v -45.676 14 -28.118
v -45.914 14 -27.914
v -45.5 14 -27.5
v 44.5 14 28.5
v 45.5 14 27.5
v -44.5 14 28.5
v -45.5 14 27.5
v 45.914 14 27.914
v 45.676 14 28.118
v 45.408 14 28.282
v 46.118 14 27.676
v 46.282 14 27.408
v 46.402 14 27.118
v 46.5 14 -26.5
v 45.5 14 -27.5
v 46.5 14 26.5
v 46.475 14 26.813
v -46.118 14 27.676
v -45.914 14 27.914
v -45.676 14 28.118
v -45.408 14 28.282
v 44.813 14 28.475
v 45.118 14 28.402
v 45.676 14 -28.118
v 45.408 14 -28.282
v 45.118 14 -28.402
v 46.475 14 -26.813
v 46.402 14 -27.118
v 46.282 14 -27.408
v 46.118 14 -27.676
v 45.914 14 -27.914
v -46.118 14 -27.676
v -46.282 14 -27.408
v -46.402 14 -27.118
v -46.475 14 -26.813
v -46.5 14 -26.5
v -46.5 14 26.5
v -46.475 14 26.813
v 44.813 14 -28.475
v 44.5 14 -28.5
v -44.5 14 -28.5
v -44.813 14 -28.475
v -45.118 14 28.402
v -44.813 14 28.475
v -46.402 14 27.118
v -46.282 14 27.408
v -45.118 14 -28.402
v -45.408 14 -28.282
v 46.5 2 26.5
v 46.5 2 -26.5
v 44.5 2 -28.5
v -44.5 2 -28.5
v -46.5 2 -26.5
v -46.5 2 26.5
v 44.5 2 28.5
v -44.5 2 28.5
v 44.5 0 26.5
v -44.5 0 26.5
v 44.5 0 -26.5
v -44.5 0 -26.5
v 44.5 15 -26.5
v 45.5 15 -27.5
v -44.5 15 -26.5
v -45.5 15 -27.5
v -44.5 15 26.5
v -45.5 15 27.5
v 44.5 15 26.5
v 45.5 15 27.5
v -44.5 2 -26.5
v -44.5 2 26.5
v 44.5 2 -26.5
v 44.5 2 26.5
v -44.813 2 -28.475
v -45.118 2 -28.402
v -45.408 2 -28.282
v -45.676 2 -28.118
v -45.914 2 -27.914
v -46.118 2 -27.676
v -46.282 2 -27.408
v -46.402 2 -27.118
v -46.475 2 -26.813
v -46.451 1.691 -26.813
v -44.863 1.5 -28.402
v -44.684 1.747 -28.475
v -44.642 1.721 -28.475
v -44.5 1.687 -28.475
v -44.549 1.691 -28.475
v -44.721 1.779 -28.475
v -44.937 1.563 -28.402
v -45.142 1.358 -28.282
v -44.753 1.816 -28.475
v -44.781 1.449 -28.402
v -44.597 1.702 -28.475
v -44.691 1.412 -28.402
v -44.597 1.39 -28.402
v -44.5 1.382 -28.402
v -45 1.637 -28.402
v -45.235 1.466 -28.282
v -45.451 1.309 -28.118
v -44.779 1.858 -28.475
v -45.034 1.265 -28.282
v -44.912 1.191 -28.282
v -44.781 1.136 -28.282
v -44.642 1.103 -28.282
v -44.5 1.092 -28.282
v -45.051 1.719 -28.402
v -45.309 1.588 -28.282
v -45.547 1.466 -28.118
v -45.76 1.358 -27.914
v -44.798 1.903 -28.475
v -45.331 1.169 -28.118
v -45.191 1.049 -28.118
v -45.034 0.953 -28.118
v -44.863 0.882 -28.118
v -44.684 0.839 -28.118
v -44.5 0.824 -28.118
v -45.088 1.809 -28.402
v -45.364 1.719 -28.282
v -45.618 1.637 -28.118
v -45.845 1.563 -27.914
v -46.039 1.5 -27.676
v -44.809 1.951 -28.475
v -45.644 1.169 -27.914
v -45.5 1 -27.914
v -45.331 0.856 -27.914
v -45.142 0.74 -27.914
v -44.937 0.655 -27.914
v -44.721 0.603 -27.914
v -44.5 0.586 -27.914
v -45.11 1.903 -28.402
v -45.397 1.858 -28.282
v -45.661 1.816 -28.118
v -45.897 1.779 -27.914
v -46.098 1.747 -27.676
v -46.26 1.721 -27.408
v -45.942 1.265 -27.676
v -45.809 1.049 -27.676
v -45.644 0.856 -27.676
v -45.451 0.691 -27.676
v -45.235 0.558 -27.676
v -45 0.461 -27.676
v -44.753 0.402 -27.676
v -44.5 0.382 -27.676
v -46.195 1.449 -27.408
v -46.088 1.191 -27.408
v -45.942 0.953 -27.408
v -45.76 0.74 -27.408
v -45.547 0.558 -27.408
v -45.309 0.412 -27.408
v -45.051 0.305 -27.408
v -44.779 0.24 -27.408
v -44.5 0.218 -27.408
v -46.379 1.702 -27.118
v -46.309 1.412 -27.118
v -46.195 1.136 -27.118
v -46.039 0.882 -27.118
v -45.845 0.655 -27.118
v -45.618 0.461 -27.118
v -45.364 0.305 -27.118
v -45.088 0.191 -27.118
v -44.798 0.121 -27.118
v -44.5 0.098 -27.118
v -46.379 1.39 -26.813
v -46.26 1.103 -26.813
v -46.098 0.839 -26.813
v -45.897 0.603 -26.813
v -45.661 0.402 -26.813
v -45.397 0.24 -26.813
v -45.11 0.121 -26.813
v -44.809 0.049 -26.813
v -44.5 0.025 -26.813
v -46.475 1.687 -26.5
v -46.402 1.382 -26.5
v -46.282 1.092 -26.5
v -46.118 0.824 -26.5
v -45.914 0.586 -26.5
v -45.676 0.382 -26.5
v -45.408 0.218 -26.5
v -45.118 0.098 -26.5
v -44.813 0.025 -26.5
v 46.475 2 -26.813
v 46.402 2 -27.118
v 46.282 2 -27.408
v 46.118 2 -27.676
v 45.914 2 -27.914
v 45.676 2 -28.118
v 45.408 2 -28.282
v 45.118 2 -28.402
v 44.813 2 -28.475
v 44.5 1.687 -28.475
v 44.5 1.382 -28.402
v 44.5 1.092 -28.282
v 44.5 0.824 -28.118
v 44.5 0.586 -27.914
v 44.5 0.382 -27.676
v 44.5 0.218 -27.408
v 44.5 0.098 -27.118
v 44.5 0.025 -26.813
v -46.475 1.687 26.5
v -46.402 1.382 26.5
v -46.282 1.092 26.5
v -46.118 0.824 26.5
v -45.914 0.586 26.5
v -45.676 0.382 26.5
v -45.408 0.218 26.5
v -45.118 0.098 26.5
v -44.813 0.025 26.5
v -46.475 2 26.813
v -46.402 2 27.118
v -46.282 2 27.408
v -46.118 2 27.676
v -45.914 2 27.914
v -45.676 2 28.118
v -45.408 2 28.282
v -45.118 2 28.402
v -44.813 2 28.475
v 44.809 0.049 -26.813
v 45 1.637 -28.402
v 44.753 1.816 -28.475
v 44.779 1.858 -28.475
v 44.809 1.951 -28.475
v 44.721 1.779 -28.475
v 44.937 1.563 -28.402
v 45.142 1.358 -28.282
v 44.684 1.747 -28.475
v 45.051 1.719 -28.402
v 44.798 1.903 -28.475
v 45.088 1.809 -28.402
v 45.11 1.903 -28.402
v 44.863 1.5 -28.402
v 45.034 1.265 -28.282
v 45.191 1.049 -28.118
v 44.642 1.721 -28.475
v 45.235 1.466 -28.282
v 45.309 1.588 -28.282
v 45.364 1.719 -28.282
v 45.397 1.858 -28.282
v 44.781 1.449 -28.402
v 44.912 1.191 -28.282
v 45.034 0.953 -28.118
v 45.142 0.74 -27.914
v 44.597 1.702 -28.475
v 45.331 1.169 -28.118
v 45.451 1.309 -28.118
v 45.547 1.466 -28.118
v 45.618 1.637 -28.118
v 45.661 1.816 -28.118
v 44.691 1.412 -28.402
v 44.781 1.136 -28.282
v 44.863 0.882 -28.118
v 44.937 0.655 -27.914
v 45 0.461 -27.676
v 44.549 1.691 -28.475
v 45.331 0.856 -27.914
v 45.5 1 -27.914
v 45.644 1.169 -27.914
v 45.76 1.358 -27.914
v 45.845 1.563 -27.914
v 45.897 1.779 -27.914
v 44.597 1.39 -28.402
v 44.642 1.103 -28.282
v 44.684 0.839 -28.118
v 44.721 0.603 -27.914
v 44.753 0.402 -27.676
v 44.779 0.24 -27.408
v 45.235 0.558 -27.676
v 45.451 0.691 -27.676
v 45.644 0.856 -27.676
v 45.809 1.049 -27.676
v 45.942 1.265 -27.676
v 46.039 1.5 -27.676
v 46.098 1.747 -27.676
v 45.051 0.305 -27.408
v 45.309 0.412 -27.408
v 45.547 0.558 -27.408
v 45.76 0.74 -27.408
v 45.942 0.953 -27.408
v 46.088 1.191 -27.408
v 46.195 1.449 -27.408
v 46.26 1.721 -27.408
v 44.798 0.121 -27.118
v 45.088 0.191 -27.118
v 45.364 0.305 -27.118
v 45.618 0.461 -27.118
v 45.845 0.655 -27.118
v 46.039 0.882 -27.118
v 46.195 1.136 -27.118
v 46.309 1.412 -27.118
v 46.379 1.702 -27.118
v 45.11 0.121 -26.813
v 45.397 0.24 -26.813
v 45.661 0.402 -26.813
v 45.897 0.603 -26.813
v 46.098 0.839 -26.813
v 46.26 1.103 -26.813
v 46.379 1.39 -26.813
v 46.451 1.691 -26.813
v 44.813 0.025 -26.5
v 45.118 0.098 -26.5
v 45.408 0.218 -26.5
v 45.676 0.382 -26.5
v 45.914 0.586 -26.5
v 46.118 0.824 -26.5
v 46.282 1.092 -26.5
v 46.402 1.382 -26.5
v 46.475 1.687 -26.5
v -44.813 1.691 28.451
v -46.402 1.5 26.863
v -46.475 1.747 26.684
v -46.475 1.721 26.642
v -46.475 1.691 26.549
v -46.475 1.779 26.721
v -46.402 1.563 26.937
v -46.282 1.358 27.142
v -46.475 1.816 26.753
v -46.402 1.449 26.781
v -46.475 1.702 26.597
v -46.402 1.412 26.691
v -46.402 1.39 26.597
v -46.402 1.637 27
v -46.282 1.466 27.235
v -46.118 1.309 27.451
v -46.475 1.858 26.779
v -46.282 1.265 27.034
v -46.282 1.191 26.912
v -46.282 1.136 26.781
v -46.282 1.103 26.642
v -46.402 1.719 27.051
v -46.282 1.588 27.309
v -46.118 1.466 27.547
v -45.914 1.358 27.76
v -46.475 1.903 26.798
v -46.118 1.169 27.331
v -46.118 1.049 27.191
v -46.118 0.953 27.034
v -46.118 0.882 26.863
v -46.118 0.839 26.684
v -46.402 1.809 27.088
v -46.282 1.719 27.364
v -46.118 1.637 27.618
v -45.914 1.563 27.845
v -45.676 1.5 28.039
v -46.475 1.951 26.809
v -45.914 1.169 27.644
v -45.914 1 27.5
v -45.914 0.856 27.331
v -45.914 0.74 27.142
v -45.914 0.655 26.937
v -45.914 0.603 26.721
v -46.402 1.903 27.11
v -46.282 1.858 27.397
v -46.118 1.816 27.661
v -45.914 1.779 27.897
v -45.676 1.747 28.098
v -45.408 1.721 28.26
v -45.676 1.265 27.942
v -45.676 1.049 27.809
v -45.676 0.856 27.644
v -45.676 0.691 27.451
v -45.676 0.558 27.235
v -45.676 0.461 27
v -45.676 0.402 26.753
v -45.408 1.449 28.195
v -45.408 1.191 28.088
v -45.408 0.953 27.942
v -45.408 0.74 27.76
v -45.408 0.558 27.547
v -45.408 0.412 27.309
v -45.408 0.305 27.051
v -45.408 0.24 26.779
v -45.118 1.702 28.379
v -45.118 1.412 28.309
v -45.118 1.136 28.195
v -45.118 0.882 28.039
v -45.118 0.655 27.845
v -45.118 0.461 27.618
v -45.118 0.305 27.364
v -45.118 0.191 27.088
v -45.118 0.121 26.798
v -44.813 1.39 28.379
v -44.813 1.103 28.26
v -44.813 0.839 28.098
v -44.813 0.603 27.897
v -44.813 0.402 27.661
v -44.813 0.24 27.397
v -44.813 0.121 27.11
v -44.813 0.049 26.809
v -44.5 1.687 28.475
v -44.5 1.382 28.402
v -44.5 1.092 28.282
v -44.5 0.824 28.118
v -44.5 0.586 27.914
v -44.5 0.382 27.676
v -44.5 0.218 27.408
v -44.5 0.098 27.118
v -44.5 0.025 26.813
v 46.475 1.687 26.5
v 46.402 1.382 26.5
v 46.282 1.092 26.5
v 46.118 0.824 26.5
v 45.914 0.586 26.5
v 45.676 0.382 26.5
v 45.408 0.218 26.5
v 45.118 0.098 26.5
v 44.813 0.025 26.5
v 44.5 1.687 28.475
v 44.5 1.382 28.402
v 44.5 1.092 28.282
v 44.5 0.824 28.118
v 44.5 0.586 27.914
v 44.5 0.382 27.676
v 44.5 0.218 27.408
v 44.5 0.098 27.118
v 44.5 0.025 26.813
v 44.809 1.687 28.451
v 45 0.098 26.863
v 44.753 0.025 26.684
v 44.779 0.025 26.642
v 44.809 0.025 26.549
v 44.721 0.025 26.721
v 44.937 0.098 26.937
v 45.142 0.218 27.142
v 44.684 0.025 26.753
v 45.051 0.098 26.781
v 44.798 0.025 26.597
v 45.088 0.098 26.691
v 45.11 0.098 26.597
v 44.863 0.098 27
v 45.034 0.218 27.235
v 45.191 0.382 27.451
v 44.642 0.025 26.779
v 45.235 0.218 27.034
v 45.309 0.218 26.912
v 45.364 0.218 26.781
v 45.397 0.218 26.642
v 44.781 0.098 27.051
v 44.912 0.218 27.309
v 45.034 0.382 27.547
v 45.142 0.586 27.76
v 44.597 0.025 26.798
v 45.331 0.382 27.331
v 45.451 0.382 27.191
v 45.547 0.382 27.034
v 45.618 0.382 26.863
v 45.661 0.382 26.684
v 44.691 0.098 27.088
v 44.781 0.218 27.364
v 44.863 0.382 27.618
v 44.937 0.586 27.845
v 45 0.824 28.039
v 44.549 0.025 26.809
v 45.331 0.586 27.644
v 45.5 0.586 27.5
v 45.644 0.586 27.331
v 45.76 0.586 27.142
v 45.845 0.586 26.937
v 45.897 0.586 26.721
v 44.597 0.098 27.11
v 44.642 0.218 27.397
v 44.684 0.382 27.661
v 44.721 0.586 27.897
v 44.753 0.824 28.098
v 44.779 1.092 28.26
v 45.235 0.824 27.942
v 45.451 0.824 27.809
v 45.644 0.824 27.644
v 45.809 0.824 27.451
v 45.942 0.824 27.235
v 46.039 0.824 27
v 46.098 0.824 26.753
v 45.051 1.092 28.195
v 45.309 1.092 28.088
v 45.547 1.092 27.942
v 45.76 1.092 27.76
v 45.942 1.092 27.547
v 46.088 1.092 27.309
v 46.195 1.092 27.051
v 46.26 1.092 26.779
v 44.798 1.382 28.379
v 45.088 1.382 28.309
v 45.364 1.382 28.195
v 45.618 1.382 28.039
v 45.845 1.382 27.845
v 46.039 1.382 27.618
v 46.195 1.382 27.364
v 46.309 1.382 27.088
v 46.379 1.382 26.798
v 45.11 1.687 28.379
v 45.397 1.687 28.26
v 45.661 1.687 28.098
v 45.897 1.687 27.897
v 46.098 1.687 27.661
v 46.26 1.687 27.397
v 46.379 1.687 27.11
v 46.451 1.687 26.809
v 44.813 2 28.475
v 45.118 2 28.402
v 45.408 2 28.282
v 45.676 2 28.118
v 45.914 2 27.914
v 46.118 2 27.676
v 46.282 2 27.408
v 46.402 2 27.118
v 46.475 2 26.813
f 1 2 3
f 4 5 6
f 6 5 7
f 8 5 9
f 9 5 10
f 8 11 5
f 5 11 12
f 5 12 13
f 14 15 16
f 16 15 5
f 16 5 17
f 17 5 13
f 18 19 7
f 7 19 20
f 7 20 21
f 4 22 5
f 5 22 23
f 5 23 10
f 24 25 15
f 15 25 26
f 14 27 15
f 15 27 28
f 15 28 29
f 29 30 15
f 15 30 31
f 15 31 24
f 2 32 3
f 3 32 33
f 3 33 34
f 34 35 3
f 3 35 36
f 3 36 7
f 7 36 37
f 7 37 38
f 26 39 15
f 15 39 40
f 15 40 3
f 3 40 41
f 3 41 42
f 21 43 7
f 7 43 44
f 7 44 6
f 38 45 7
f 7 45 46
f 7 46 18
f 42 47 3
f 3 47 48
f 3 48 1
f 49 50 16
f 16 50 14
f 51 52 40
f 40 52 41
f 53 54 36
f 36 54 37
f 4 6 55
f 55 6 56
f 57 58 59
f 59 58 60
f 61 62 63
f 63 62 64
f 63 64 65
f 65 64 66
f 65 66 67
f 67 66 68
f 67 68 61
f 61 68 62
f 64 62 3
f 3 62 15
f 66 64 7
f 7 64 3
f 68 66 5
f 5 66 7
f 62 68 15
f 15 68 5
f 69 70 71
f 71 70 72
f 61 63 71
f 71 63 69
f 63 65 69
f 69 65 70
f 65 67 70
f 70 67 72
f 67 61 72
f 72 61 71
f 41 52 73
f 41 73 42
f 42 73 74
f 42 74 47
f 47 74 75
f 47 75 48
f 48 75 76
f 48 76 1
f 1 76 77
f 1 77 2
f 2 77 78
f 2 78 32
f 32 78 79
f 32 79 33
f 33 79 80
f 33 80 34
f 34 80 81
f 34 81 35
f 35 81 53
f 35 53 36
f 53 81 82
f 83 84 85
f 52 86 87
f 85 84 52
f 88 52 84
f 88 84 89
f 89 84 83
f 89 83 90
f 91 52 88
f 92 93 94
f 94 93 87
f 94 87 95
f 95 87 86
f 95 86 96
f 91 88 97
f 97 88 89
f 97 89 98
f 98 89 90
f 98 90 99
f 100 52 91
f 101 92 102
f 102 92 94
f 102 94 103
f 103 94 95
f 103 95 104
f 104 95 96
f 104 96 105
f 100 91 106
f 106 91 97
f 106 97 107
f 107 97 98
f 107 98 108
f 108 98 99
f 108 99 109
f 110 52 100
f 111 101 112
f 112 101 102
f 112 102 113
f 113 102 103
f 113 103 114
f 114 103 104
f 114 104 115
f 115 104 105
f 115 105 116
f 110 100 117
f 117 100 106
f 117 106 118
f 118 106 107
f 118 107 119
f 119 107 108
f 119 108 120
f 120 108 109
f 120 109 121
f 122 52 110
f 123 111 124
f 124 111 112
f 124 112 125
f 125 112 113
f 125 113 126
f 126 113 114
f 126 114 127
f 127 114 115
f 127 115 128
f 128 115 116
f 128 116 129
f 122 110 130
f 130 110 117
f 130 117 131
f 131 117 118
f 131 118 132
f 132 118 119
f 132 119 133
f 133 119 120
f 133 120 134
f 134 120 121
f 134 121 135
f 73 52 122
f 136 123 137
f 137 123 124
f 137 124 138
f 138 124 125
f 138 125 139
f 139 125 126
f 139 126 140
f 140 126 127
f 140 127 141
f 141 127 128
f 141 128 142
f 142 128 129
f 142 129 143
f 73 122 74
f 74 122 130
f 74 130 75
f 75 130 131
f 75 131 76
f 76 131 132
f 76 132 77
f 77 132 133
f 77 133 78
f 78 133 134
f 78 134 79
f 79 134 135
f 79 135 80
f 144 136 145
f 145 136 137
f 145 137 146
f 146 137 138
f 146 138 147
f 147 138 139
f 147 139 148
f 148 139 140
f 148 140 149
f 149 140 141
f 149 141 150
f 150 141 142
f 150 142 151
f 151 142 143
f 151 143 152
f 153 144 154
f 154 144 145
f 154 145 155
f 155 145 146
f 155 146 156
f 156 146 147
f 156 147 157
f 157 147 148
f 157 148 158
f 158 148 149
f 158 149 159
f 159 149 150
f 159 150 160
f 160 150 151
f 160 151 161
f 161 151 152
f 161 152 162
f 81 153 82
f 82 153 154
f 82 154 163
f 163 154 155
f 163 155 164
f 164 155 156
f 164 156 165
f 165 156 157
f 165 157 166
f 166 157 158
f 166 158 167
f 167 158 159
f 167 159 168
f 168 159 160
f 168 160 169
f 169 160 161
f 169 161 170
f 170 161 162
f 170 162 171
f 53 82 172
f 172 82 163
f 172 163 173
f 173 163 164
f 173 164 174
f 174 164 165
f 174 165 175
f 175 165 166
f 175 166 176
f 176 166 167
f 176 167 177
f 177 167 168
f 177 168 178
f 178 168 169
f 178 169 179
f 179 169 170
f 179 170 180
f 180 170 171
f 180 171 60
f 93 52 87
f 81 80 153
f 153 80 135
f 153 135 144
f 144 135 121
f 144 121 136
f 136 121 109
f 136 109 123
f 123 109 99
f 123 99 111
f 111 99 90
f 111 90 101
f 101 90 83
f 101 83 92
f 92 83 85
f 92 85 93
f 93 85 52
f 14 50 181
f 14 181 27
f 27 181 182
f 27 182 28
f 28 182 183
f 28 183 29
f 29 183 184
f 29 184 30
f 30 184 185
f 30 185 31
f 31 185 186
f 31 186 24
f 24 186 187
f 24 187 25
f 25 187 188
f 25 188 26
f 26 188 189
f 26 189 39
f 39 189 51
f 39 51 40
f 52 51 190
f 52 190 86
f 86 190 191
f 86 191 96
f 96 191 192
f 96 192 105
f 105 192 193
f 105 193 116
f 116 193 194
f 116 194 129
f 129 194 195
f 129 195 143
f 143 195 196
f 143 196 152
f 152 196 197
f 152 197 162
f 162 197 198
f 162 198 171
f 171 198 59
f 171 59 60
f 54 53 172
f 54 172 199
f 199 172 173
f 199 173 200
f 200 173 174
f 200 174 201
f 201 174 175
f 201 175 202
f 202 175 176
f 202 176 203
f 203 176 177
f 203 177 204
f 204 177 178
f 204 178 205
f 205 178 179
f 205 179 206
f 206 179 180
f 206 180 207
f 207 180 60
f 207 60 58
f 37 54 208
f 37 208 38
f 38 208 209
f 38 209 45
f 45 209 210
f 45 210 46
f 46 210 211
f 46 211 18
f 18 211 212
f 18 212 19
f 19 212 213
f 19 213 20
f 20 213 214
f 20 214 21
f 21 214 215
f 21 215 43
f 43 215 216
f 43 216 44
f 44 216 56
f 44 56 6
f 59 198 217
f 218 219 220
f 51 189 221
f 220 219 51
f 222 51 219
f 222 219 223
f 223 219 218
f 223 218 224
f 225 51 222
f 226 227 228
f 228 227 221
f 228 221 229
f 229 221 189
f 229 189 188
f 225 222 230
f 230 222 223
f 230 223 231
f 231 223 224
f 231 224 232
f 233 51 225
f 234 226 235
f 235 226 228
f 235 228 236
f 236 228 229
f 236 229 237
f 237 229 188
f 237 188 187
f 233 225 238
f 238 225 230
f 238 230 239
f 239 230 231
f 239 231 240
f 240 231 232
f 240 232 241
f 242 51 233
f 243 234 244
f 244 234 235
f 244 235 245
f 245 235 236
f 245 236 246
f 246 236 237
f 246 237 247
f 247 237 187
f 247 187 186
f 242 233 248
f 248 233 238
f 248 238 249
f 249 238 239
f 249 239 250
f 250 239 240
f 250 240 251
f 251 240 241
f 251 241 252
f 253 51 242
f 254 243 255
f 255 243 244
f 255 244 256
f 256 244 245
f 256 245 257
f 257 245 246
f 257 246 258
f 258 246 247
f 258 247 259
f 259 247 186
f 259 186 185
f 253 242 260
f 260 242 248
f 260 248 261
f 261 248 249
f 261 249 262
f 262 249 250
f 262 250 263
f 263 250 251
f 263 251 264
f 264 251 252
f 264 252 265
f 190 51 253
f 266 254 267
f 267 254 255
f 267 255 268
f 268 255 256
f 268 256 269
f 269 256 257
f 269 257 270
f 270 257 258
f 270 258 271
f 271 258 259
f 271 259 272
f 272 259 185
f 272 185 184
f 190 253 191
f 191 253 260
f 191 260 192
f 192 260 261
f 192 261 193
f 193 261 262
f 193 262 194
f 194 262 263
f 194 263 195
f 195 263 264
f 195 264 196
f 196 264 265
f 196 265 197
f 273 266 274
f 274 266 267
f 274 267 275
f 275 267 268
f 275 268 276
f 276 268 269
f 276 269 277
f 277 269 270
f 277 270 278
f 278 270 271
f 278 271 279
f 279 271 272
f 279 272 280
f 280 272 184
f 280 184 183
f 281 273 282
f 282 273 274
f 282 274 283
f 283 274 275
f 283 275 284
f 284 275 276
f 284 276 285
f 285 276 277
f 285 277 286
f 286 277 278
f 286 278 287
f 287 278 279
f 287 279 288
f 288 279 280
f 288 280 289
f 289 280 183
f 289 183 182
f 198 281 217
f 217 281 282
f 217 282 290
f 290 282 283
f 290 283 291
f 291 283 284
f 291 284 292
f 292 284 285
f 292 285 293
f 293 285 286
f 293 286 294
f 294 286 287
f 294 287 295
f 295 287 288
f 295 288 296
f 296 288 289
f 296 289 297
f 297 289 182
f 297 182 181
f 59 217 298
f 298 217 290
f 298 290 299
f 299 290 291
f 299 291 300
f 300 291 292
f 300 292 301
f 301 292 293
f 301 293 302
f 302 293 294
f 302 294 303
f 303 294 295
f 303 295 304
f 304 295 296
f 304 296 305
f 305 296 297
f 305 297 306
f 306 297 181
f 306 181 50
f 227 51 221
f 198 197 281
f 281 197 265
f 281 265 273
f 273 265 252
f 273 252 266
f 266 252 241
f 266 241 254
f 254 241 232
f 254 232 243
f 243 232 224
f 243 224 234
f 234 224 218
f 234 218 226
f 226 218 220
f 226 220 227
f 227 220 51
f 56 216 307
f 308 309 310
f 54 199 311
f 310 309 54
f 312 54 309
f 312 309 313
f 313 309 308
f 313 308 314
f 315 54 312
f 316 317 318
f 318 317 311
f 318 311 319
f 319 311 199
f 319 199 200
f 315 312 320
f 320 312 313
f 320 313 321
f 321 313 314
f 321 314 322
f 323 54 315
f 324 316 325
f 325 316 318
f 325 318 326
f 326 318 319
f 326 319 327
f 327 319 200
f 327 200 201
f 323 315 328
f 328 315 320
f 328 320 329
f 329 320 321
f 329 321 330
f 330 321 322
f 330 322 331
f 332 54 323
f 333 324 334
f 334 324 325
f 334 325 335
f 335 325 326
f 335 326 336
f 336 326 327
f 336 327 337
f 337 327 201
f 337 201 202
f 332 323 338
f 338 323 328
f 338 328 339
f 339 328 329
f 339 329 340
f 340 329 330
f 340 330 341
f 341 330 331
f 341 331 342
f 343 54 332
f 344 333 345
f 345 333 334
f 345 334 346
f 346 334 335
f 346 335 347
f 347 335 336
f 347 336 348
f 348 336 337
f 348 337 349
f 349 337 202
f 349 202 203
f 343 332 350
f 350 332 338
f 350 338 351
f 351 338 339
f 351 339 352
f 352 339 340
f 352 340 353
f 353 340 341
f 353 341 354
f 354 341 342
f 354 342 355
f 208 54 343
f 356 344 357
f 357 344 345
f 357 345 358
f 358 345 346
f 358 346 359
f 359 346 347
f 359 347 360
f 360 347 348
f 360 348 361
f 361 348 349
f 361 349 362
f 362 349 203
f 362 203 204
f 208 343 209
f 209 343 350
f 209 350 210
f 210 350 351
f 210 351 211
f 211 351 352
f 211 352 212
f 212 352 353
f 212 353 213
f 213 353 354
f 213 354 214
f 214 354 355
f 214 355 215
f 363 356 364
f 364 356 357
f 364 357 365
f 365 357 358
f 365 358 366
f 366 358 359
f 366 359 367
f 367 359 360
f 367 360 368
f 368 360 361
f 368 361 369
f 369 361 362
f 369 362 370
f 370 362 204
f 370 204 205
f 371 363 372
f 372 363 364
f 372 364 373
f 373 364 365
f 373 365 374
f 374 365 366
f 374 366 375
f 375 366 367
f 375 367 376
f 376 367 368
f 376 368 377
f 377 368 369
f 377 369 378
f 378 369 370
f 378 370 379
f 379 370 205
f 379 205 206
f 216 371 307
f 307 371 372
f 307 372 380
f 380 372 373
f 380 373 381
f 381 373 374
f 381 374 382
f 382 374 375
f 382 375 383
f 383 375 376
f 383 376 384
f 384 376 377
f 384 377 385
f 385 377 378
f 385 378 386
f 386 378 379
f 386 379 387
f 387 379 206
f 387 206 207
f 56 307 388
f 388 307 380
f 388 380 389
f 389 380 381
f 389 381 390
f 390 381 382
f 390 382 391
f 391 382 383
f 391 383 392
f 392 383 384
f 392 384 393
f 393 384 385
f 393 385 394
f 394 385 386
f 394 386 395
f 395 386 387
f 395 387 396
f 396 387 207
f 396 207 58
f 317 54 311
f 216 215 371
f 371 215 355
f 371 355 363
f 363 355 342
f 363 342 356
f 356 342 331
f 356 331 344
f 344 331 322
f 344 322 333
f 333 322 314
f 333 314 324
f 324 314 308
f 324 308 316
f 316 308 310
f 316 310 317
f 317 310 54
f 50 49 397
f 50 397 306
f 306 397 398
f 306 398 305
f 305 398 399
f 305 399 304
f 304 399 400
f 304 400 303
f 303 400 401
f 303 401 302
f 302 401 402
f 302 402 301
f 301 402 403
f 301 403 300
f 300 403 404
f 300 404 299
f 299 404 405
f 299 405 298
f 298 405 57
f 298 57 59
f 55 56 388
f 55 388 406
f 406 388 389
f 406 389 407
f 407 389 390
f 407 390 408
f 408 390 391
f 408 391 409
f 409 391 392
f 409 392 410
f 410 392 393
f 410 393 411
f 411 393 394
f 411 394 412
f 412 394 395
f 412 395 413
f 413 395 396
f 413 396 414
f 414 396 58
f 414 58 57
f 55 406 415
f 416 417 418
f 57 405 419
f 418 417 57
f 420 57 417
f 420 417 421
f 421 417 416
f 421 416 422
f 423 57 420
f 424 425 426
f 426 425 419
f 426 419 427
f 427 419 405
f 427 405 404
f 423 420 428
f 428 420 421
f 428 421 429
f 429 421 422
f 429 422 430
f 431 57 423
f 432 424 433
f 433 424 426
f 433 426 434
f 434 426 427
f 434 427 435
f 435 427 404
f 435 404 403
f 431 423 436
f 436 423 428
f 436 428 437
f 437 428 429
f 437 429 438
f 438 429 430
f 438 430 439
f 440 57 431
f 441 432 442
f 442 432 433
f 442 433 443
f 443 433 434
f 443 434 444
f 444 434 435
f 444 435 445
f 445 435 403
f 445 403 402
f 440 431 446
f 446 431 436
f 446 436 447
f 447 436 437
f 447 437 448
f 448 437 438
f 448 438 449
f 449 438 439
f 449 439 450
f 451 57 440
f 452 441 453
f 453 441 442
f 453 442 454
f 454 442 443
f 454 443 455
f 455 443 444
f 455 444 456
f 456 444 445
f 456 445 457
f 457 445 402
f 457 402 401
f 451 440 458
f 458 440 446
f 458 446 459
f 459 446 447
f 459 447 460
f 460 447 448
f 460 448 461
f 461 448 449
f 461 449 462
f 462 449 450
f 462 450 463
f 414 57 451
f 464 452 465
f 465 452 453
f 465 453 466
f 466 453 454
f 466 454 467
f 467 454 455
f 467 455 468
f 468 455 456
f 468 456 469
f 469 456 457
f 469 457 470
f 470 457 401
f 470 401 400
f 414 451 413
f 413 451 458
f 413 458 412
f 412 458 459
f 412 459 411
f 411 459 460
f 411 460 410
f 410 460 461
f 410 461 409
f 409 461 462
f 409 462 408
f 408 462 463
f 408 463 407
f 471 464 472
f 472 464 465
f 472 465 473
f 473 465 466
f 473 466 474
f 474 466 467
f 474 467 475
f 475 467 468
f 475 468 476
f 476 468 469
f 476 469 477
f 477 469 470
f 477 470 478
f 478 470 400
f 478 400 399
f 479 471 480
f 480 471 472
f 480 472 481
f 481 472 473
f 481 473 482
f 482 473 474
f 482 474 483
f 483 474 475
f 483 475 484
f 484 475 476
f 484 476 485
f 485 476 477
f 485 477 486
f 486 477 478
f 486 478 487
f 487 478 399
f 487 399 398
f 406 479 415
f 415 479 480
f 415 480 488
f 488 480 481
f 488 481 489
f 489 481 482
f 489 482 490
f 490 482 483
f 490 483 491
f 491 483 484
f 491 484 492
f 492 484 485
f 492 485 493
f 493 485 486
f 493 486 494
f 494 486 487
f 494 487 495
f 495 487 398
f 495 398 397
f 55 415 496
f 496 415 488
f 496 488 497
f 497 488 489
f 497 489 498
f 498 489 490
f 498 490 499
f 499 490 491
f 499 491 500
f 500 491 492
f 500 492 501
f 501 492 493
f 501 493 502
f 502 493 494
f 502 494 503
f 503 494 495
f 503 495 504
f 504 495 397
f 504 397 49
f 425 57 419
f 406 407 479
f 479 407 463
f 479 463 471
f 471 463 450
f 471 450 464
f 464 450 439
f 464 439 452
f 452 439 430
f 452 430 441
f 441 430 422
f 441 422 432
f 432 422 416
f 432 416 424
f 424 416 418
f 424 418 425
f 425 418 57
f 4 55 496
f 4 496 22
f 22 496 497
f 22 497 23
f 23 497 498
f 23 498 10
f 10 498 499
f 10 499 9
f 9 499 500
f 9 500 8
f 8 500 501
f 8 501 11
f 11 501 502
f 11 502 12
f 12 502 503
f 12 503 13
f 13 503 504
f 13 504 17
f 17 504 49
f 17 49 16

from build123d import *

# Parameters (mm, degrees)
SKETCH1_W           = 93
SKETCH1_H           = 57
BOSS_EXTRUDE1_DEPTH = 14
SHELL1_T            = -2
SKETCH2_W           = 91
SKETCH2_H           = 55
SKETCH2_W_2         = 89
SKETCH2_H_2         = 53
BOSS_EXTRUDE2_DEPTH = 1
FILLET2_R           = 2


with BuildPart() as part:
    # Sketch1 → Boss-Extrude1 (new body)
    with BuildSketch(Plane(origin=(0, 0, 0), x_dir=(1, 0, 0), z_dir=(0, 1, 0))):
        Rectangle(SKETCH1_W, SKETCH1_H)
    extrude(amount=BOSS_EXTRUDE1_DEPTH)

    # Shell1
    shell1_openings = [part.faces().sort_by_distance(p)[0] for p in [
        (0, 14, 0),
    ]]
    offset(amount=SHELL1_T, openings=shell1_openings, kind=Kind.INTERSECTION)

    # Sketch2 → Boss-Extrude2 (add)
    with BuildSketch(Plane(origin=(0, 14, 0), x_dir=(1, 0, 0), z_dir=(0, 1, 0))):
        Rectangle(SKETCH2_W, SKETCH2_H)
        Rectangle(SKETCH2_W_2, SKETCH2_H_2, mode=Mode.SUBTRACT)
    extrude(amount=BOSS_EXTRUDE2_DEPTH)

    # Fillet2
    fillet2_edges = [part.edges().sort_by_distance(p)[0] for p in [
        (0, 0, 28.5),
        (-46.5, 0, 0),
        (0, 0, -28.5),
        (46.5, 0, 0),
        (46.5, 7, 28.5),
        (-46.5, 7, 28.5),
        (-46.5, 7, -28.5),
        (46.5, 7, -28.5),
    ]]
    fillet(fillet2_edges, radius=FILLET2_R)


solid = part.part
